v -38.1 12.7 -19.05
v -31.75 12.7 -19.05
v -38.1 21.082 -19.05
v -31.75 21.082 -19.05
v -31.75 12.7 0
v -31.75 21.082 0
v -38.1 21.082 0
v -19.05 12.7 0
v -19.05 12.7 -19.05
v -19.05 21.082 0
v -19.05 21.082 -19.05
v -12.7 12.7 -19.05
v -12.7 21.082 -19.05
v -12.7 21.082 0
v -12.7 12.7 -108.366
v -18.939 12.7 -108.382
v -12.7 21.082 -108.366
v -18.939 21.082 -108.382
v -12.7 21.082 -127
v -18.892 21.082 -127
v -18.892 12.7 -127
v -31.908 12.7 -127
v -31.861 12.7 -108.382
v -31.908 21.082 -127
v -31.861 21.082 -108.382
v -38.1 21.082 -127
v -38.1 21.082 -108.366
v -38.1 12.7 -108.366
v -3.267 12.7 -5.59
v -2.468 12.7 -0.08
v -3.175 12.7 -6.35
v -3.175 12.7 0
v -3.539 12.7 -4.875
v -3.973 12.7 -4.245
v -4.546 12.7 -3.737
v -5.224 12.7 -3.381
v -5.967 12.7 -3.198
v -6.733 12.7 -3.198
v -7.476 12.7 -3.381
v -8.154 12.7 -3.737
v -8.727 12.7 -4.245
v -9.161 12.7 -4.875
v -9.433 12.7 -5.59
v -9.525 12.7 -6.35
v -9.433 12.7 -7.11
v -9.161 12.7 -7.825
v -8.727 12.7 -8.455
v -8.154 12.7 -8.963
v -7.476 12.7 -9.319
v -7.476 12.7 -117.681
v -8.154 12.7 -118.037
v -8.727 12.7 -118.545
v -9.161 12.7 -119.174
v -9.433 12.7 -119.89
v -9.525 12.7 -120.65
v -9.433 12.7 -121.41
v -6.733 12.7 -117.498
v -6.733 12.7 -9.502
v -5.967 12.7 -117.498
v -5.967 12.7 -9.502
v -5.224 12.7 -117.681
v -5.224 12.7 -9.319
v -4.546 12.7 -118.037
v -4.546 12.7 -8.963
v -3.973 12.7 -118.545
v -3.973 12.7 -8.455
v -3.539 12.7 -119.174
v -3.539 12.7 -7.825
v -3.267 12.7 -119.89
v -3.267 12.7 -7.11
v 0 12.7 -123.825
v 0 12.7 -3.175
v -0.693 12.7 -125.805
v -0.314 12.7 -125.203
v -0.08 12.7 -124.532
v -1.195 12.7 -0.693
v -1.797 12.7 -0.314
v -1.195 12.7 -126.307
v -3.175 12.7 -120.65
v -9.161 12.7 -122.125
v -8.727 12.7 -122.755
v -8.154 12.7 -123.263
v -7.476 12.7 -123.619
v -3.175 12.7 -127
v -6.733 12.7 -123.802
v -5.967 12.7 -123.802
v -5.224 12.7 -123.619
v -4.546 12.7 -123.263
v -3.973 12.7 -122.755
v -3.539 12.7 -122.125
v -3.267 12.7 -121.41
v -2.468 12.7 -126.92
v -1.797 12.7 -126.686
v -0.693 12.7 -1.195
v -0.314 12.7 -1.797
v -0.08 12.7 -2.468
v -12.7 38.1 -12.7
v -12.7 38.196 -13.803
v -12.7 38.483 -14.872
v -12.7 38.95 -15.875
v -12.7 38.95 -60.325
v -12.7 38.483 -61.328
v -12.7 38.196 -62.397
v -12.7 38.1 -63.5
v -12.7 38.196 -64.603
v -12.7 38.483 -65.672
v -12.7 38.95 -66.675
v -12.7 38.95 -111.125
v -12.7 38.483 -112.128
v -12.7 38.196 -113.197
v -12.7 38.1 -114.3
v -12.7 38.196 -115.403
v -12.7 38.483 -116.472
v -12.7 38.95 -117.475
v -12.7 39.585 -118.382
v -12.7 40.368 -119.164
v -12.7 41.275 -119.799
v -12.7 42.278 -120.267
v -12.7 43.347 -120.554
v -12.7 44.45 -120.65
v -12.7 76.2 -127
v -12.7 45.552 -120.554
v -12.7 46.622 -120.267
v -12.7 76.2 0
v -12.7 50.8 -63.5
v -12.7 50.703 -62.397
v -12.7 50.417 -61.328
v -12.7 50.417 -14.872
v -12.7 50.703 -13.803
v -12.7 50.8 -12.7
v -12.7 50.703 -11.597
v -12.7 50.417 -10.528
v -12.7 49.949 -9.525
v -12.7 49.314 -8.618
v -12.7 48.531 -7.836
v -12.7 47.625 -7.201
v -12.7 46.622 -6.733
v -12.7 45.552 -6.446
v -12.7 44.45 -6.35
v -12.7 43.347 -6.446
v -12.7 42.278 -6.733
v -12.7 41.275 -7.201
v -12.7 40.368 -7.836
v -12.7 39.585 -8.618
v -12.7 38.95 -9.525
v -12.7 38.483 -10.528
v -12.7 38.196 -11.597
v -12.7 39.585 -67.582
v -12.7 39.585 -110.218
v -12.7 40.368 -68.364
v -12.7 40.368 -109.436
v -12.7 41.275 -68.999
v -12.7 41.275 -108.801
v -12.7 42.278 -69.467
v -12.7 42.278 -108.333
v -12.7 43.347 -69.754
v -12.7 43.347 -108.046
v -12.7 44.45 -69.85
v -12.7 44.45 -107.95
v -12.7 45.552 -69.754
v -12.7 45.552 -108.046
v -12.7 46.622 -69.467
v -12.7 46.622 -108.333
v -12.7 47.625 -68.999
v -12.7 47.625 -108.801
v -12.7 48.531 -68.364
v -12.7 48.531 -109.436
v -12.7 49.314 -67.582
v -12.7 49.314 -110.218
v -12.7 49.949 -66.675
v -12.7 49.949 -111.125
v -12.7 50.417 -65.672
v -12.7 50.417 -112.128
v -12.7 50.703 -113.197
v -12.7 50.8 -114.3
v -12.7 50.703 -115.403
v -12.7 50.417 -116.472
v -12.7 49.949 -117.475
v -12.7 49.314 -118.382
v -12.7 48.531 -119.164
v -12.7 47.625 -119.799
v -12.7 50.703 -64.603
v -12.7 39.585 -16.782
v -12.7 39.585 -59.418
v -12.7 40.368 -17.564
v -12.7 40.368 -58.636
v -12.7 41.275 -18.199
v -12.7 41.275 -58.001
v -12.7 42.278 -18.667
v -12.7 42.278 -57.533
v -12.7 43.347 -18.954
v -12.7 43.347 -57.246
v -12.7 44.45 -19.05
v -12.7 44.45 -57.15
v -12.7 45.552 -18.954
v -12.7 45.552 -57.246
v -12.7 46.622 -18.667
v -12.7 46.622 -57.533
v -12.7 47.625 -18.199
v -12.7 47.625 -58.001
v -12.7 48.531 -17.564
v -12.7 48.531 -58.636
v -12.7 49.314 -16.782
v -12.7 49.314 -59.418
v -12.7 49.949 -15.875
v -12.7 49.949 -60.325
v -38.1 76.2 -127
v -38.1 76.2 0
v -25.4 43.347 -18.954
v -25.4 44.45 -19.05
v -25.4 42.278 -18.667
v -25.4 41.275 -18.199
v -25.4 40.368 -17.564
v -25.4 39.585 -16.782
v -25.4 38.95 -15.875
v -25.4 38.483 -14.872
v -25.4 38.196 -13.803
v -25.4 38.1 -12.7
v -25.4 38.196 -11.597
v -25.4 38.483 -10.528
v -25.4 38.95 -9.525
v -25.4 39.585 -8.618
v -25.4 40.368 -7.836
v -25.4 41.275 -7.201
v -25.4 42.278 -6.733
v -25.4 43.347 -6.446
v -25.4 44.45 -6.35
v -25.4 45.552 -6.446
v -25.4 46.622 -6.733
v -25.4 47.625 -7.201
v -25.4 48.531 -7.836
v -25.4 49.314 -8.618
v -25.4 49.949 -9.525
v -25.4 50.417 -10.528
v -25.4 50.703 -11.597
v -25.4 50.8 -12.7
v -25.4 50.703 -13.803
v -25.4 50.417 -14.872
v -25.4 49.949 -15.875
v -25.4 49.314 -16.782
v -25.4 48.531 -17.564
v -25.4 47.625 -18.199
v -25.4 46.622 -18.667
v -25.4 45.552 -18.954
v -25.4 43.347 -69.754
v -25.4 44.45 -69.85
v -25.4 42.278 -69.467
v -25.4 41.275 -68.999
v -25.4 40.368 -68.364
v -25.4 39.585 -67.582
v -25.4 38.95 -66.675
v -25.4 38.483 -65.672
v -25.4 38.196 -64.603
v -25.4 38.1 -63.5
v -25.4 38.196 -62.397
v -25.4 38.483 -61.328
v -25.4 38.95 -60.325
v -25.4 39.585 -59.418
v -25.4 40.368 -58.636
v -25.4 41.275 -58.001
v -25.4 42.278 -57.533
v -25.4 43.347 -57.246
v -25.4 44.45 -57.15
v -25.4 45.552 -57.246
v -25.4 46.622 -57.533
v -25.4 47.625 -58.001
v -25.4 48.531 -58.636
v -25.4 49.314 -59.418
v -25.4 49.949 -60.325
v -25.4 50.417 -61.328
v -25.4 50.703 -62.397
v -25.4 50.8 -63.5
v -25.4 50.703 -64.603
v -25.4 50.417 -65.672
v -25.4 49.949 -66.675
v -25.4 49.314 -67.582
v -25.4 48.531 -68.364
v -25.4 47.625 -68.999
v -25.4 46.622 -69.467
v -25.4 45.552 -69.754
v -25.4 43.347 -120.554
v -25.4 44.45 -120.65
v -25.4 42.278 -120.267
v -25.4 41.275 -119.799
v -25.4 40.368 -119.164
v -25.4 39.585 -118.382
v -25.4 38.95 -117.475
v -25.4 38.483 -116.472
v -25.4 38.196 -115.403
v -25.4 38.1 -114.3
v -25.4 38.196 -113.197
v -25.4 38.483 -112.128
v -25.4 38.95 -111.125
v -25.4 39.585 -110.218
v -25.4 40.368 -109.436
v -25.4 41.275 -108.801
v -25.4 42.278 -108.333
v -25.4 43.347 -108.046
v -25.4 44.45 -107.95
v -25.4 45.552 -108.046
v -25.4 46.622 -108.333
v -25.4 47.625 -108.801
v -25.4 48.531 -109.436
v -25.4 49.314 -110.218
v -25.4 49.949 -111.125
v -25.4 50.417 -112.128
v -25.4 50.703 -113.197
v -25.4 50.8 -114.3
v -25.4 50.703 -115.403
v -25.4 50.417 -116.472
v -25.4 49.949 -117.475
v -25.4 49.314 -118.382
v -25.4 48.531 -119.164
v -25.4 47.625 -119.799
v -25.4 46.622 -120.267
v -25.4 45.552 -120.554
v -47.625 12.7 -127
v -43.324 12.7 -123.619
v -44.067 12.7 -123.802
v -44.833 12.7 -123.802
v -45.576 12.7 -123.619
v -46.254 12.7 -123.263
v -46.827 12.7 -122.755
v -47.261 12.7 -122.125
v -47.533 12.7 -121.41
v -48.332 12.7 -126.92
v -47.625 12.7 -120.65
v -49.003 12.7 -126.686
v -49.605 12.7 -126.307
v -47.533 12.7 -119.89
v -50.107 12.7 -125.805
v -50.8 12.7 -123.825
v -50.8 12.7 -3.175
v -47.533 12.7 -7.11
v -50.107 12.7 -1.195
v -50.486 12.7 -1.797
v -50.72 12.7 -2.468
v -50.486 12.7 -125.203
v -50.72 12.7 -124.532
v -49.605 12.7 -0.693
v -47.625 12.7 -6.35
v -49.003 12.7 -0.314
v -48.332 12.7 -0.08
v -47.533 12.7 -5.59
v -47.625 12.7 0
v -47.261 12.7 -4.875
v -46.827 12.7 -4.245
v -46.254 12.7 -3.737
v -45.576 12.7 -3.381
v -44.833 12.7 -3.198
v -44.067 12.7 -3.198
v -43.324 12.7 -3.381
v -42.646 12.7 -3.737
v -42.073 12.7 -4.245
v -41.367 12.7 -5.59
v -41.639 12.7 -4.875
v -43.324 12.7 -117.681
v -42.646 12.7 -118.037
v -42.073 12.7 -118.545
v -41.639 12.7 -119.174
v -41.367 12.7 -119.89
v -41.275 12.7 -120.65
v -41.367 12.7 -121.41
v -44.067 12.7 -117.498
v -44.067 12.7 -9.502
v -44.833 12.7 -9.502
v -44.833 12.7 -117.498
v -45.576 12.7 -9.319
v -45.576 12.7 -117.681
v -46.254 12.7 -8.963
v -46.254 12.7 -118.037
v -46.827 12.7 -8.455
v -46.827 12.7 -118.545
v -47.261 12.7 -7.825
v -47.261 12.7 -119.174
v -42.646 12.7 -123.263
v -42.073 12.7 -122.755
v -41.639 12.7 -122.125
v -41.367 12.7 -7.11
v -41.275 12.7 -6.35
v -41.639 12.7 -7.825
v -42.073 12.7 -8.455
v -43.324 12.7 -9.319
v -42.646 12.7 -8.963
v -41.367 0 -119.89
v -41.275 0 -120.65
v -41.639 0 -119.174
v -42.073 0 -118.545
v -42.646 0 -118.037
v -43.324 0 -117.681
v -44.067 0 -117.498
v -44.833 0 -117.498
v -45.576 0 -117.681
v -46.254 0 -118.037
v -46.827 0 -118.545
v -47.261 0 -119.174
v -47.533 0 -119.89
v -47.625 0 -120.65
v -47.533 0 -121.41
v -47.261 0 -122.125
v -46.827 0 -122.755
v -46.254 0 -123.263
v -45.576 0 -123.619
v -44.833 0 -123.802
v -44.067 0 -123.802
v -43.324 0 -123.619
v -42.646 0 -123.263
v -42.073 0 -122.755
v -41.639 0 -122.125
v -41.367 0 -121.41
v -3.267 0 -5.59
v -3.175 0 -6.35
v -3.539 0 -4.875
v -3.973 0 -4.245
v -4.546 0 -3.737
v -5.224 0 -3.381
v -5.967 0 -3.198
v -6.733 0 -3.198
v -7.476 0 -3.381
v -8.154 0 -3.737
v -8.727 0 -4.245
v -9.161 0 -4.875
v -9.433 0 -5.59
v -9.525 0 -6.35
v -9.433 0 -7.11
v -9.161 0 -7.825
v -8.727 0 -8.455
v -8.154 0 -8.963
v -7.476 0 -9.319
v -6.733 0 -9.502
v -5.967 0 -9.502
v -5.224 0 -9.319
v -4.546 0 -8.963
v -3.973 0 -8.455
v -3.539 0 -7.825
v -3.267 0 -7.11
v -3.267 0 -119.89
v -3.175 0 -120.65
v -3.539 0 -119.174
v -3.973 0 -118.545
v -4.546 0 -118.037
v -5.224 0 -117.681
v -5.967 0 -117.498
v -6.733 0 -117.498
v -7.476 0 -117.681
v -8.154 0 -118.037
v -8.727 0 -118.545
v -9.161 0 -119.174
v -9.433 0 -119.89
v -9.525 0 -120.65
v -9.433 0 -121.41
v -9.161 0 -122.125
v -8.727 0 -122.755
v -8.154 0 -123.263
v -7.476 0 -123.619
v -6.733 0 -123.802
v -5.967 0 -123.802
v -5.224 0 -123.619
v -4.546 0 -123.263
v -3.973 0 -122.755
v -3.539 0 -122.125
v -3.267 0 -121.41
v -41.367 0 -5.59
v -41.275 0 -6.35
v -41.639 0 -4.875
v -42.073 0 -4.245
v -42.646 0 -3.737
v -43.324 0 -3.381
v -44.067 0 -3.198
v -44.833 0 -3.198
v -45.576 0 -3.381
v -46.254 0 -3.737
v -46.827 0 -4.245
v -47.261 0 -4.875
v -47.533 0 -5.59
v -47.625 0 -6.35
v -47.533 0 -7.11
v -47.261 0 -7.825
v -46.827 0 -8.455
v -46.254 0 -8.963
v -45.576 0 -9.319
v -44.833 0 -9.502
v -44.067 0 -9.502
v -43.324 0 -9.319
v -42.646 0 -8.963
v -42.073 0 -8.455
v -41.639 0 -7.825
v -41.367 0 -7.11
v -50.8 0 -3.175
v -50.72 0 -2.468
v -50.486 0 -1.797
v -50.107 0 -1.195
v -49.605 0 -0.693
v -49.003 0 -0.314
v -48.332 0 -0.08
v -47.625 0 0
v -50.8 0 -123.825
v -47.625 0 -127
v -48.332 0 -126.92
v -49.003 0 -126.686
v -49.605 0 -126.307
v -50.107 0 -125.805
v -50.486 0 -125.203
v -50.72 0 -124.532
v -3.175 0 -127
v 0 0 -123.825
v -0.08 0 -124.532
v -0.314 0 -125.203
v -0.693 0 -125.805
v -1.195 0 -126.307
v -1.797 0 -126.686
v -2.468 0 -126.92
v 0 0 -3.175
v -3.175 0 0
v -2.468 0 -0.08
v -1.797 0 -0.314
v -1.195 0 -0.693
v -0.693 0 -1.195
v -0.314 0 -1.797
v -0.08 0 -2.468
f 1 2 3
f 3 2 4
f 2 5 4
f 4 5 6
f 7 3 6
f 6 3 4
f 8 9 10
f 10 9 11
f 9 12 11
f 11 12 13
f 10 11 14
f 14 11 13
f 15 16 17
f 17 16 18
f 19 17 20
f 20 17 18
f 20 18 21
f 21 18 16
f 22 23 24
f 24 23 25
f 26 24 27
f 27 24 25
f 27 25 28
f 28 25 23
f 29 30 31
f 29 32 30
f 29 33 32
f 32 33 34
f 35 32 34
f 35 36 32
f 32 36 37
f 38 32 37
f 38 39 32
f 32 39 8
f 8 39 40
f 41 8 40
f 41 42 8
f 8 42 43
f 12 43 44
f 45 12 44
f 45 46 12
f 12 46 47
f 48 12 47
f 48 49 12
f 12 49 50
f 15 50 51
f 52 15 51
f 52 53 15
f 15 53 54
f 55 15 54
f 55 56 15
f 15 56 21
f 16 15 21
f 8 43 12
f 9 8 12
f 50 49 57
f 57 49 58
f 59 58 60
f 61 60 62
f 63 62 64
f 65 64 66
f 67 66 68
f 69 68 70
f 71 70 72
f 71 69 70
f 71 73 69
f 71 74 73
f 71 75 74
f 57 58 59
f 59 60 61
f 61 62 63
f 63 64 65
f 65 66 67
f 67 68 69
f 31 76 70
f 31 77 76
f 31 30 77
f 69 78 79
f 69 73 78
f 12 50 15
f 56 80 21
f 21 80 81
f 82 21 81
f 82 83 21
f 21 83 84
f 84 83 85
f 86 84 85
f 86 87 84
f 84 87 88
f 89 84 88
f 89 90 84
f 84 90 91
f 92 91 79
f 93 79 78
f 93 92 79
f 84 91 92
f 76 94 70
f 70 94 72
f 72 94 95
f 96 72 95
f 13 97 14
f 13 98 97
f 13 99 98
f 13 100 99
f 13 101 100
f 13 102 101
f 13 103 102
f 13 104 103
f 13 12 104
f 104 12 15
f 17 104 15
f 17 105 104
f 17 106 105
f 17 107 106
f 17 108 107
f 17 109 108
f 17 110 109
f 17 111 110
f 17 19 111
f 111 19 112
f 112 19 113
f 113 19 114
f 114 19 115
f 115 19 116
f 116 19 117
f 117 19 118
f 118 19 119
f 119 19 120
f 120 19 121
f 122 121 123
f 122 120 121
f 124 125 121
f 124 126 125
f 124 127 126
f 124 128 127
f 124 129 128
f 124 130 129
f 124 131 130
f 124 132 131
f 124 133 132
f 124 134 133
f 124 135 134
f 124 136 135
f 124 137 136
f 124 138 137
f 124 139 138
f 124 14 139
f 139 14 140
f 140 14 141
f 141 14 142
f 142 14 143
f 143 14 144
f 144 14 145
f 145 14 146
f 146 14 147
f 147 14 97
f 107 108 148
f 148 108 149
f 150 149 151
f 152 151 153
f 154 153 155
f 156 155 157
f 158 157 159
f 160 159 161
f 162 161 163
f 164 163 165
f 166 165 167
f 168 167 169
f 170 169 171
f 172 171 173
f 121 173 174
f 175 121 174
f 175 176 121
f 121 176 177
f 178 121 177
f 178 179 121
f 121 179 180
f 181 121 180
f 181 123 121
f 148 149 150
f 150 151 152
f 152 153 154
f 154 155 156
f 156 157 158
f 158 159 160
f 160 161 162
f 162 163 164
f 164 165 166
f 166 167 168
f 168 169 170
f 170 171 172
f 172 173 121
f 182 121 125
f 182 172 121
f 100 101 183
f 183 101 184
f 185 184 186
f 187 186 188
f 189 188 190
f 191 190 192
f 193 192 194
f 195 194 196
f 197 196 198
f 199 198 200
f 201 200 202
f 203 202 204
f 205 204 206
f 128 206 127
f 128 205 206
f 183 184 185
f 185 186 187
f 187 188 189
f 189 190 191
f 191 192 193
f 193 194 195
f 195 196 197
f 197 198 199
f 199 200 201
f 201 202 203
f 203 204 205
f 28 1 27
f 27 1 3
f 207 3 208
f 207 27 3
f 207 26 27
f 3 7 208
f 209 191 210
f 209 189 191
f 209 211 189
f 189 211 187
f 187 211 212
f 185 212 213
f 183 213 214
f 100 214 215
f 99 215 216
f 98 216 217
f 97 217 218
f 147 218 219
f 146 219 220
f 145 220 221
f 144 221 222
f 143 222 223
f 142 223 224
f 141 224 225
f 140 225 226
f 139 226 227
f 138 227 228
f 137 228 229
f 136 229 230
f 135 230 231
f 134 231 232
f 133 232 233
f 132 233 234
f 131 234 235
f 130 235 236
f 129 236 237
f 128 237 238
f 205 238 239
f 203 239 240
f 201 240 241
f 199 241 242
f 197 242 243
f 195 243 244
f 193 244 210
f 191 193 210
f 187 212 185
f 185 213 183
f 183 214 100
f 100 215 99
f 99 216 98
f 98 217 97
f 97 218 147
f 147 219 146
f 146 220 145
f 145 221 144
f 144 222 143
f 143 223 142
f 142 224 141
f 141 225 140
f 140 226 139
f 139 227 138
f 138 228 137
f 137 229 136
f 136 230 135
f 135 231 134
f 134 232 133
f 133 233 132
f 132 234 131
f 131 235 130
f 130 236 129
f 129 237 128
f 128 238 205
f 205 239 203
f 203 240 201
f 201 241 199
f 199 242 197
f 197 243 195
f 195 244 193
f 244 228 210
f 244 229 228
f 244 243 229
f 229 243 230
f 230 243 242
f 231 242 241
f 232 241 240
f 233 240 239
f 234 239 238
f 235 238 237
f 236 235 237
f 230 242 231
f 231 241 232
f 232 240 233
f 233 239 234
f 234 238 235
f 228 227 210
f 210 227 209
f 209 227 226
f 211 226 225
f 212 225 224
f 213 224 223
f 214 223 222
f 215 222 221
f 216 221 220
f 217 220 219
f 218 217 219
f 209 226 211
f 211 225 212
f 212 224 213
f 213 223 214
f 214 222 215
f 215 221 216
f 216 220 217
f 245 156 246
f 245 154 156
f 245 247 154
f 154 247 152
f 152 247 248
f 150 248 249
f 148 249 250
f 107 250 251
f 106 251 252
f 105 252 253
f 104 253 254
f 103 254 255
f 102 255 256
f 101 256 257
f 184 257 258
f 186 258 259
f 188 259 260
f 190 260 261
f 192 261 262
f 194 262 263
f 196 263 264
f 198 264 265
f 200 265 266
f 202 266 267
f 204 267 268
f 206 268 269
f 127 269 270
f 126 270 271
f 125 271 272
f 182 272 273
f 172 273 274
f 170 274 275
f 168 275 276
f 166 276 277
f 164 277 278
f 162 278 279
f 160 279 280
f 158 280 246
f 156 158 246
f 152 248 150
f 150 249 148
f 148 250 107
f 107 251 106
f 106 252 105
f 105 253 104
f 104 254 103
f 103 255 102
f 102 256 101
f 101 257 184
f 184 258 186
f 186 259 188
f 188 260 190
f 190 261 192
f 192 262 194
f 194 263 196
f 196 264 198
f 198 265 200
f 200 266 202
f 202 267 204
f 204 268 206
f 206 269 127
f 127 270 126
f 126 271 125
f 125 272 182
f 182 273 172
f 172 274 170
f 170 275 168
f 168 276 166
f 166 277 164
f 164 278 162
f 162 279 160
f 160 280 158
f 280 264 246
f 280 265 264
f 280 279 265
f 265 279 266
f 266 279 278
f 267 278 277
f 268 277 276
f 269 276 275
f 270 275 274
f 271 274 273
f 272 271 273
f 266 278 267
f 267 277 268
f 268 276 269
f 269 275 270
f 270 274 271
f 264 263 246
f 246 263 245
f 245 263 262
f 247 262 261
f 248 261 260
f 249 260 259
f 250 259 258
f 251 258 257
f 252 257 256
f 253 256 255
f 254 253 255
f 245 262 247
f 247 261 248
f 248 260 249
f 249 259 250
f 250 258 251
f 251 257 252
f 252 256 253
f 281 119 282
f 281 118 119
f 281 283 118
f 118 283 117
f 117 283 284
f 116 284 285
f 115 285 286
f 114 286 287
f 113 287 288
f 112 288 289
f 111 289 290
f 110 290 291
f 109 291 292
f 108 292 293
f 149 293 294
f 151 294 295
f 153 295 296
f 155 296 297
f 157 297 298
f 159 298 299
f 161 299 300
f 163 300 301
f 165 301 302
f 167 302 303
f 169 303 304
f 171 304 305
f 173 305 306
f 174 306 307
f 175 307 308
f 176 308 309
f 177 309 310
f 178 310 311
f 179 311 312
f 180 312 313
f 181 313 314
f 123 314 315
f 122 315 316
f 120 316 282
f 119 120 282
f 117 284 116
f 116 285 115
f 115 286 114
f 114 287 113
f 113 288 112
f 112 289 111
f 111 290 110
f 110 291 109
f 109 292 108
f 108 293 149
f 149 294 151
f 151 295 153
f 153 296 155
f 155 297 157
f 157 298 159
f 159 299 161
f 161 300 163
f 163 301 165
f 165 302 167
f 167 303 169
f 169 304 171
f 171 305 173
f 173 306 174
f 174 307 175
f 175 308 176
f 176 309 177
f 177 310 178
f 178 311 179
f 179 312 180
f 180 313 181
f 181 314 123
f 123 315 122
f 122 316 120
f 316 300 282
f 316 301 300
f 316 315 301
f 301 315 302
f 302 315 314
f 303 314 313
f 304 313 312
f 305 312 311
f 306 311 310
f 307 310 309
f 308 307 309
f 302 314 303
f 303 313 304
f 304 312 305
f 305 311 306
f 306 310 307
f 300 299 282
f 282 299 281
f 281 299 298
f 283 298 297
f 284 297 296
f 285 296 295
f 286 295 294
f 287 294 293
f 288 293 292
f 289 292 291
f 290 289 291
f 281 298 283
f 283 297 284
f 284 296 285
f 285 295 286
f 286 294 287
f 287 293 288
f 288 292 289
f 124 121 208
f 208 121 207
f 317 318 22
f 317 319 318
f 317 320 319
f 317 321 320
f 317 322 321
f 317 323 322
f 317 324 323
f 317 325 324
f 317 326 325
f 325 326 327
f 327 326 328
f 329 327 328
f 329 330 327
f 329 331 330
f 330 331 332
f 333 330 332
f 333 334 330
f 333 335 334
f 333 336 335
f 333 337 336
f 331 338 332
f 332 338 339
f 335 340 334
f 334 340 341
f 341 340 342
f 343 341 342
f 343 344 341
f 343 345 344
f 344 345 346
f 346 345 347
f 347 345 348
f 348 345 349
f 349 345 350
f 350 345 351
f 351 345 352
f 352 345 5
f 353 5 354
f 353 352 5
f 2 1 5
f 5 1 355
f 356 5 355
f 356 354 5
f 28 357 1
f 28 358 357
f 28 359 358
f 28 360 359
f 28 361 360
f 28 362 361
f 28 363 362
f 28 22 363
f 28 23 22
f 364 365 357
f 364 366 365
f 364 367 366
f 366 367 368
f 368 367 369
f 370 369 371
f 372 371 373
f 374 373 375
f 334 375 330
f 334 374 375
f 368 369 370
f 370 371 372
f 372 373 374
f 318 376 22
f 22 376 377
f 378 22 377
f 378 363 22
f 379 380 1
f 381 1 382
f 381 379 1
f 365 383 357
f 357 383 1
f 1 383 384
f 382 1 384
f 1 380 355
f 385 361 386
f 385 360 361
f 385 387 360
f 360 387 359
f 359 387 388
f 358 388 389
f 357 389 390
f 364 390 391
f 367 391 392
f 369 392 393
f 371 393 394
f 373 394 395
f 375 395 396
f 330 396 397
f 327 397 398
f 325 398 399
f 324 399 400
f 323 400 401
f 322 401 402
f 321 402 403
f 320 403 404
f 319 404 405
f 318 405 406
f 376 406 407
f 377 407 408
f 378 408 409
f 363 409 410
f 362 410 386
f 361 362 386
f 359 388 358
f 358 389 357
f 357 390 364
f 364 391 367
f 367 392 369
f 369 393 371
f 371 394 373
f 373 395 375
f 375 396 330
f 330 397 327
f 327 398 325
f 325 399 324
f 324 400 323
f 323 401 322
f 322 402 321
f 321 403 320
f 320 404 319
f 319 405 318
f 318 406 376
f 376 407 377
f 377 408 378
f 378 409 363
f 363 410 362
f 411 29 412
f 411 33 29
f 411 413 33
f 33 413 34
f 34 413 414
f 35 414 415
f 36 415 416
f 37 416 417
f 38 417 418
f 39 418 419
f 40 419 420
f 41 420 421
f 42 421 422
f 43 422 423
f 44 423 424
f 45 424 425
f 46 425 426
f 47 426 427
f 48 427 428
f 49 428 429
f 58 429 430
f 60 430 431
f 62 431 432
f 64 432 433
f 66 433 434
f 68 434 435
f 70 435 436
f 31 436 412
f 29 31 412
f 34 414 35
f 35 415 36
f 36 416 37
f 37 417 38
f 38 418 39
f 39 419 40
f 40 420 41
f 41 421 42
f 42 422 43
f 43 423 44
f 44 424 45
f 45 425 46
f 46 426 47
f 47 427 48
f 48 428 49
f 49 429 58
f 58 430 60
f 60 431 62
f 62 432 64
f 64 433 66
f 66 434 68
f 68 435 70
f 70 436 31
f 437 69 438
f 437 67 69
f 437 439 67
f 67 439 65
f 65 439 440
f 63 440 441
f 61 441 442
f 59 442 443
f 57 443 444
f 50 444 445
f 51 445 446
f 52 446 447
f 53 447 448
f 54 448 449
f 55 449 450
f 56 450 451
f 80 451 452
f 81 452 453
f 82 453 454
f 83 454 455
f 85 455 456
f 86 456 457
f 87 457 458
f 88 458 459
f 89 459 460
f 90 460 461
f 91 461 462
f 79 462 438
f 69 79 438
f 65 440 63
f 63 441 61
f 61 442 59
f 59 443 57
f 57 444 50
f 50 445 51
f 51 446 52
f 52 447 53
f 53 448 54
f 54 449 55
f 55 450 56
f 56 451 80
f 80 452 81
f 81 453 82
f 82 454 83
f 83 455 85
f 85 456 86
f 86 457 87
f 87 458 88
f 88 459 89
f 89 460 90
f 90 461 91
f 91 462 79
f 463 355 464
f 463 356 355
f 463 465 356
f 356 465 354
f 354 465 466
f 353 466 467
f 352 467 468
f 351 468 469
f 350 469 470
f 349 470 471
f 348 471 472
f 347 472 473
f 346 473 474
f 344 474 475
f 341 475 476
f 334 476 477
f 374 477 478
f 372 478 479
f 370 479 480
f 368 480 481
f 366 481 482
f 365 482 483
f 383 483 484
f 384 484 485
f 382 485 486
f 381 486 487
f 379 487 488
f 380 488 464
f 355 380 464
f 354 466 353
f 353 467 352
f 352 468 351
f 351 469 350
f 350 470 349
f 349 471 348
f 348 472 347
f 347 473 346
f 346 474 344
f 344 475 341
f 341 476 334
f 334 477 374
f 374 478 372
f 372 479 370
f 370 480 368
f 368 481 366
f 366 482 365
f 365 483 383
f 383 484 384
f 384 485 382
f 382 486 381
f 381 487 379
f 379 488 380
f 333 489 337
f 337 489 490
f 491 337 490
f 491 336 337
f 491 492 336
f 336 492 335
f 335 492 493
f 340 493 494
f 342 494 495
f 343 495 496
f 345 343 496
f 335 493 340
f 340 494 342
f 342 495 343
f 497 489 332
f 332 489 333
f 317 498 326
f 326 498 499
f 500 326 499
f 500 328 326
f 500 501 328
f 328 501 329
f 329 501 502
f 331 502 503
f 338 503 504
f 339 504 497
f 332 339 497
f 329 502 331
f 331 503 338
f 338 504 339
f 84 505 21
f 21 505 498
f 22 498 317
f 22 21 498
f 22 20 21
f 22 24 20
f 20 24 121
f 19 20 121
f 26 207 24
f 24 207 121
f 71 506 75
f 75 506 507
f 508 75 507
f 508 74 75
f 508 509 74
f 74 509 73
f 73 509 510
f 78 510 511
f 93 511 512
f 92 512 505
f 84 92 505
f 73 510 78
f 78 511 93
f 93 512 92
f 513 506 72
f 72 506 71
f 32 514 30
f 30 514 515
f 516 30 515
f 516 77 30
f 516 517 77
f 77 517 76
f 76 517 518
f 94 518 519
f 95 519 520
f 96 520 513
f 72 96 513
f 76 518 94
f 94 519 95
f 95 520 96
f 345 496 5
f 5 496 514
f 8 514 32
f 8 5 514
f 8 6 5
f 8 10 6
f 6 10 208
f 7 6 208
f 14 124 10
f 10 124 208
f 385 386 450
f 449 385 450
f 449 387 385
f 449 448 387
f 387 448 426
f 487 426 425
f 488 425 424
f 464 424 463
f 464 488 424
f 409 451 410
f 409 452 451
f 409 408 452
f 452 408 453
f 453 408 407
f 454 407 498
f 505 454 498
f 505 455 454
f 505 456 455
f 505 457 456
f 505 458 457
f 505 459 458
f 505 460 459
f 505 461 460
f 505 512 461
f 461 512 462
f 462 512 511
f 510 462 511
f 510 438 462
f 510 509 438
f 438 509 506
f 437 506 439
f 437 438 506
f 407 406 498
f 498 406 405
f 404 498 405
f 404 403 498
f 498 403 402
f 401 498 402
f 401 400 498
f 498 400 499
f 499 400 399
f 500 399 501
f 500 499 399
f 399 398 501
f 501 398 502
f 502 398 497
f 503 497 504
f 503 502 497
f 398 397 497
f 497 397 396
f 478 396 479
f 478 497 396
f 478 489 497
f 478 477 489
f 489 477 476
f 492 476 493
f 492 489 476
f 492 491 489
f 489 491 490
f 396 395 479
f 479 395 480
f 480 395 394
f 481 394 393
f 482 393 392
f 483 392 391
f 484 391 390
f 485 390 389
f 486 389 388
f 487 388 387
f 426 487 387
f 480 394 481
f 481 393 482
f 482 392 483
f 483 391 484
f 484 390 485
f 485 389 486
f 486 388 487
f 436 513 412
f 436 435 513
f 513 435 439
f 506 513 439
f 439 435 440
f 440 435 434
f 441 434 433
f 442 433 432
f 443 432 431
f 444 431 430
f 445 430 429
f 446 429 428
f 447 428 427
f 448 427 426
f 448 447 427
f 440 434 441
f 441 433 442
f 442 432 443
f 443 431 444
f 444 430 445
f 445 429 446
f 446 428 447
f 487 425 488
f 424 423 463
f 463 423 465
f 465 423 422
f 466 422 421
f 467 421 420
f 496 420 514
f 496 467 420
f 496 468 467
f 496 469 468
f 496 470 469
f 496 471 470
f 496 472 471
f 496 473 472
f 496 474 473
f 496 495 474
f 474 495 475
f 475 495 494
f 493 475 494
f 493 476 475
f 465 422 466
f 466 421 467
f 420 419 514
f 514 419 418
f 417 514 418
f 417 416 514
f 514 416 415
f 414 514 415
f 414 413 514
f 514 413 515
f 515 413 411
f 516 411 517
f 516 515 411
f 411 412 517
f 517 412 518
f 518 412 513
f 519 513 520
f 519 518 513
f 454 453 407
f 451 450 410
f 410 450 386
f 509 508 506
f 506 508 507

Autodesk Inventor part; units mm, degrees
ref_plane "YZ Plane" through (0, 0, 0) normal (1, 0, 0) x (0, 1, 0)
ref_plane "XZ Plane" through (0, 0, 0) normal (0, 1, 0) x (-1, 0, 0)
ref_plane "XY Plane" through (0, 0, 0) normal (0, 0, 1) x (1, 0, 0)
sketch "Sketch1" plane through (0, 0, 0) normal (0, 1, 0) x (-1, 0, 0)
  line L0 (3.175, 0) -> (47.625, 0)
  line L1 (50.8, -3.175) -> (50.8, -123.825)
  line L2 (47.625, -127) -> (3.175, -127)
  line L3 (0, -123.825) -> (0, -3.175)
  arc A0 (50.8, -3.175) -> (47.625, 0) centre (47.625, -3.175) ccw
  arc A1 (3.175, 0) -> (0, -3.175) centre (3.175, -3.175) ccw
  arc A2 (0, -123.825) -> (3.175, -127) centre (3.175, -123.825) ccw
  arc A3 (47.625, -127) -> (50.8, -123.825) centre (47.625, -123.825) ccw
  point P0 (0, 0)
  point P1 (50.8, -127)
  point P2 (50.8, 0)
  point P3 (0, -127)
  dimension "d0" = 50.8
  dimension "d1" = 127
  dimension "d4" = 3.175
extrude "Extrusion1" add sketch "Sketch1" along normal blind 12.7
sketch "Sketch2" plane through (0, 12.7, 0) normal (0, 1, 0) x (1, 0, 0)
  line L0 (0, 0) -> (-6.35, 0) construction
  line L1 (-6.35, 0) -> (-6.35, 6.35) construction
  line L2 (-6.35, 6.35) -> (0, 6.35) construction
  line L3 (0, 6.35) -> (0, 0) construction
  circle A0 centre (-6.35, 6.35) radius 3.175
  line L4 (0, 3.175) -> (0, 123.825) construction
  line L5 (0, 63.5) -> (-50.8802, 63.5) construction
  line L6 (-50.8802, 63.5) -> (-25.4, 127) construction
  line L7 (-3.175, 127) -> (-47.625, 127) construction
  line L8 (-25.4, 127) -> (-25.4, 0) construction
  line L9 (-47.625, 0) -> (-3.175, 0) construction
  circle A1 centre (-6.35, 120.65) radius 3.175
  circle A2 centre (-44.45, 6.35) radius 3.175
  circle A3 centre (-44.45, 120.65) radius 3.175
  dimension "d5" = 6.35
  dimension "d6" = 6.35
  dimension "d7" = 6.35
extrude "Extrusion2" cut sketch "Sketch2" against normal through all
sketch "Sketch3" plane through (0, 12.7, 0) normal (0, 1, 0) x (1, 0, 0)
  line L0 (0, 0) -> (-12.7, 0) construction
  line L1 (0, 0) -> (12.7, 0) construction
  line L2 (-47.625, 0) -> (-3.175, 0) construction
  line L3 (-25.4, 0) -> (-25.4, 127) construction
  line L4 (-3.175, 127) -> (-47.625, 127) construction
  line L5 (-50.8, 0) -> (-38.1, 0) construction
  line L6 (-38.1, 0) -> (-12.7, 0)
  line L7 (-12.7, 0) -> (-12.7, 127)
  line L8 (-12.7, 127) -> (-38.1, 127)
  line L9 (-38.1, 127) -> (-38.1, 0)
  dimension "d14" = 12.7
  dimension "d15" = 180
  dimension "d36" = 25.4
extrude "Extrusion3" add sketch "Sketch3" along normal blind 63.5
sketch "Sketch5" plane through (-12.7, 12.7, 0) normal (1, 0, 0) x (0, 0, -1)
  line L0 (0, 63.5) -> (127, 63.5) construction
  line L1 (63.5, 63.5) -> (63.5, 0) construction
  line L2 (123.825, 0) -> (3.175, 0) construction
  line L3 (127, 0) -> (127, 63.5) construction
  circle A0 centre (63.5, 31.7498) radius 6.35
  circle A1 centre (12.7, 31.7498) radius 6.35
  circle A2 centre (114.3, 31.7498) radius 6.35
  line L4 (0, 0) -> (0, 63.5) construction
  line L5 (0, 31.75) -> (127, 31.75) construction
  point P0 (0, -12.7)
  dimension "d24" = 12.7
  dimension "d27" = 12.7
  dimension "d37" = 50.8
  dimension "d38" = 50.8
extrude "Extrusion5" cut sketch "Sketch5" against normal blind 12.7
sketch "Sketch6" plane through (0, 12.7, 0) normal (0, 1, 0) x (1, 0, 0)
  line L0 (-12.7, 0) -> (-19.05, 0)
  line L1 (-19.05, 0) -> (-19.05, 19.05)
  line L2 (-19.05, 19.05) -> (-12.7, 19.05)
  line L3 (-12.7, 19.05) -> (-12.7, 0)
  line L4 (-38.1, 127) -> (-38.1, 0) construction
  line L5 (-38.4604, 63.7403) -> (-13.0604, 63.7086) construction
  line L6 (-12.7, 69.85) -> (-12.7, 57.15) construction
  line L7 (-12.541, 127.416) -> (-18.891, 127.4319)
  line L8 (-18.891, 127.4319) -> (-18.9385, 108.3819)
  line L9 (-18.9385, 108.3819) -> (-12.5885, 108.3661)
  line L10 (-12.5885, 108.3661) -> (-12.541, 127.416)
  line L11 (-47.625, 0) -> (-3.175, 0) construction
  line L12 (-25.4, 0) -> (-25.4, 127) construction
  line L13 (-3.175, 127) -> (-47.625, 127) construction
  line L14 (-38.1, 0) -> (-31.75, 0)
  line L15 (-31.75, 0) -> (-31.75, 19.05)
  line L16 (-31.75, 19.05) -> (-38.1, 19.05)
  line L17 (-38.1, 19.05) -> (-38.1, 0)
  line L18 (-38.1, 69.85) -> (-38.1, 57.15) construction
  line L19 (-38.259, 127.416) -> (-31.909, 127.4319)
  line L20 (-31.909, 127.4319) -> (-31.8615, 108.3819)
  line L21 (-31.8615, 108.3819) -> (-38.2115, 108.3661)
  line L22 (-38.2115, 108.3661) -> (-38.259, 127.416)
  line L23 (-47.625, 0) -> (-2.456, 0) construction
  point P0 (0, 0)
  point P1 (-37.7396, 63.7086)
  point P2 (-38.1, 69.85)
  point P3 (-38.1, 57.15)
  dimension "d30" = 6.35
  dimension "d31" = 19.05
extrude "Extrusion6" cut sketch "Sketch6" along normal blind 8.382
sketch "Sketch7" plane through (0, 0, 0) normal (0, -1, 0) x (1, 0, 0)
  line L0 (-3.175, 0) -> (-47.625, 0) construction
  line L1 (-50.8, -3.175) -> (-50.8, -123.825) construction
  line L2 (-47.625, -127) -> (-3.175, -127) construction
  line L3 (0, -123.825) -> (0, -3.175) construction
  circle A0 centre (-44.45, -6.35) radius 3.175 construction
  circle A1 centre (-44.45, -6.35) radius 3.175 construction
  circle A2 centre (-6.35, -6.35) radius 3.175 construction
  circle A3 centre (-6.35, -6.35) radius 3.175 construction
  circle A4 centre (-44.45, -120.65) radius 3.175 construction
  circle A5 centre (-44.45, -120.65) radius 3.175 construction
  circle A6 centre (-6.35, -120.65) radius 3.175 construction
  arc A7 (-47.625, 0) -> (-50.8, -3.175) centre (-47.625, -3.175) ccw construction
  arc A8 (0, -3.175) -> (-3.175, 0) centre (-3.175, -3.175) ccw construction
  arc A9 (-3.175, -127) -> (0, -123.825) centre (-3.175, -123.825) ccw construction
  arc A10 (-50.8, -123.825) -> (-47.625, -127) centre (-47.625, -123.825) ccw construction
  point P0 (0, 0)
  dimension "d39" = 3.175
properties part number "Far Gantry Bracket"
